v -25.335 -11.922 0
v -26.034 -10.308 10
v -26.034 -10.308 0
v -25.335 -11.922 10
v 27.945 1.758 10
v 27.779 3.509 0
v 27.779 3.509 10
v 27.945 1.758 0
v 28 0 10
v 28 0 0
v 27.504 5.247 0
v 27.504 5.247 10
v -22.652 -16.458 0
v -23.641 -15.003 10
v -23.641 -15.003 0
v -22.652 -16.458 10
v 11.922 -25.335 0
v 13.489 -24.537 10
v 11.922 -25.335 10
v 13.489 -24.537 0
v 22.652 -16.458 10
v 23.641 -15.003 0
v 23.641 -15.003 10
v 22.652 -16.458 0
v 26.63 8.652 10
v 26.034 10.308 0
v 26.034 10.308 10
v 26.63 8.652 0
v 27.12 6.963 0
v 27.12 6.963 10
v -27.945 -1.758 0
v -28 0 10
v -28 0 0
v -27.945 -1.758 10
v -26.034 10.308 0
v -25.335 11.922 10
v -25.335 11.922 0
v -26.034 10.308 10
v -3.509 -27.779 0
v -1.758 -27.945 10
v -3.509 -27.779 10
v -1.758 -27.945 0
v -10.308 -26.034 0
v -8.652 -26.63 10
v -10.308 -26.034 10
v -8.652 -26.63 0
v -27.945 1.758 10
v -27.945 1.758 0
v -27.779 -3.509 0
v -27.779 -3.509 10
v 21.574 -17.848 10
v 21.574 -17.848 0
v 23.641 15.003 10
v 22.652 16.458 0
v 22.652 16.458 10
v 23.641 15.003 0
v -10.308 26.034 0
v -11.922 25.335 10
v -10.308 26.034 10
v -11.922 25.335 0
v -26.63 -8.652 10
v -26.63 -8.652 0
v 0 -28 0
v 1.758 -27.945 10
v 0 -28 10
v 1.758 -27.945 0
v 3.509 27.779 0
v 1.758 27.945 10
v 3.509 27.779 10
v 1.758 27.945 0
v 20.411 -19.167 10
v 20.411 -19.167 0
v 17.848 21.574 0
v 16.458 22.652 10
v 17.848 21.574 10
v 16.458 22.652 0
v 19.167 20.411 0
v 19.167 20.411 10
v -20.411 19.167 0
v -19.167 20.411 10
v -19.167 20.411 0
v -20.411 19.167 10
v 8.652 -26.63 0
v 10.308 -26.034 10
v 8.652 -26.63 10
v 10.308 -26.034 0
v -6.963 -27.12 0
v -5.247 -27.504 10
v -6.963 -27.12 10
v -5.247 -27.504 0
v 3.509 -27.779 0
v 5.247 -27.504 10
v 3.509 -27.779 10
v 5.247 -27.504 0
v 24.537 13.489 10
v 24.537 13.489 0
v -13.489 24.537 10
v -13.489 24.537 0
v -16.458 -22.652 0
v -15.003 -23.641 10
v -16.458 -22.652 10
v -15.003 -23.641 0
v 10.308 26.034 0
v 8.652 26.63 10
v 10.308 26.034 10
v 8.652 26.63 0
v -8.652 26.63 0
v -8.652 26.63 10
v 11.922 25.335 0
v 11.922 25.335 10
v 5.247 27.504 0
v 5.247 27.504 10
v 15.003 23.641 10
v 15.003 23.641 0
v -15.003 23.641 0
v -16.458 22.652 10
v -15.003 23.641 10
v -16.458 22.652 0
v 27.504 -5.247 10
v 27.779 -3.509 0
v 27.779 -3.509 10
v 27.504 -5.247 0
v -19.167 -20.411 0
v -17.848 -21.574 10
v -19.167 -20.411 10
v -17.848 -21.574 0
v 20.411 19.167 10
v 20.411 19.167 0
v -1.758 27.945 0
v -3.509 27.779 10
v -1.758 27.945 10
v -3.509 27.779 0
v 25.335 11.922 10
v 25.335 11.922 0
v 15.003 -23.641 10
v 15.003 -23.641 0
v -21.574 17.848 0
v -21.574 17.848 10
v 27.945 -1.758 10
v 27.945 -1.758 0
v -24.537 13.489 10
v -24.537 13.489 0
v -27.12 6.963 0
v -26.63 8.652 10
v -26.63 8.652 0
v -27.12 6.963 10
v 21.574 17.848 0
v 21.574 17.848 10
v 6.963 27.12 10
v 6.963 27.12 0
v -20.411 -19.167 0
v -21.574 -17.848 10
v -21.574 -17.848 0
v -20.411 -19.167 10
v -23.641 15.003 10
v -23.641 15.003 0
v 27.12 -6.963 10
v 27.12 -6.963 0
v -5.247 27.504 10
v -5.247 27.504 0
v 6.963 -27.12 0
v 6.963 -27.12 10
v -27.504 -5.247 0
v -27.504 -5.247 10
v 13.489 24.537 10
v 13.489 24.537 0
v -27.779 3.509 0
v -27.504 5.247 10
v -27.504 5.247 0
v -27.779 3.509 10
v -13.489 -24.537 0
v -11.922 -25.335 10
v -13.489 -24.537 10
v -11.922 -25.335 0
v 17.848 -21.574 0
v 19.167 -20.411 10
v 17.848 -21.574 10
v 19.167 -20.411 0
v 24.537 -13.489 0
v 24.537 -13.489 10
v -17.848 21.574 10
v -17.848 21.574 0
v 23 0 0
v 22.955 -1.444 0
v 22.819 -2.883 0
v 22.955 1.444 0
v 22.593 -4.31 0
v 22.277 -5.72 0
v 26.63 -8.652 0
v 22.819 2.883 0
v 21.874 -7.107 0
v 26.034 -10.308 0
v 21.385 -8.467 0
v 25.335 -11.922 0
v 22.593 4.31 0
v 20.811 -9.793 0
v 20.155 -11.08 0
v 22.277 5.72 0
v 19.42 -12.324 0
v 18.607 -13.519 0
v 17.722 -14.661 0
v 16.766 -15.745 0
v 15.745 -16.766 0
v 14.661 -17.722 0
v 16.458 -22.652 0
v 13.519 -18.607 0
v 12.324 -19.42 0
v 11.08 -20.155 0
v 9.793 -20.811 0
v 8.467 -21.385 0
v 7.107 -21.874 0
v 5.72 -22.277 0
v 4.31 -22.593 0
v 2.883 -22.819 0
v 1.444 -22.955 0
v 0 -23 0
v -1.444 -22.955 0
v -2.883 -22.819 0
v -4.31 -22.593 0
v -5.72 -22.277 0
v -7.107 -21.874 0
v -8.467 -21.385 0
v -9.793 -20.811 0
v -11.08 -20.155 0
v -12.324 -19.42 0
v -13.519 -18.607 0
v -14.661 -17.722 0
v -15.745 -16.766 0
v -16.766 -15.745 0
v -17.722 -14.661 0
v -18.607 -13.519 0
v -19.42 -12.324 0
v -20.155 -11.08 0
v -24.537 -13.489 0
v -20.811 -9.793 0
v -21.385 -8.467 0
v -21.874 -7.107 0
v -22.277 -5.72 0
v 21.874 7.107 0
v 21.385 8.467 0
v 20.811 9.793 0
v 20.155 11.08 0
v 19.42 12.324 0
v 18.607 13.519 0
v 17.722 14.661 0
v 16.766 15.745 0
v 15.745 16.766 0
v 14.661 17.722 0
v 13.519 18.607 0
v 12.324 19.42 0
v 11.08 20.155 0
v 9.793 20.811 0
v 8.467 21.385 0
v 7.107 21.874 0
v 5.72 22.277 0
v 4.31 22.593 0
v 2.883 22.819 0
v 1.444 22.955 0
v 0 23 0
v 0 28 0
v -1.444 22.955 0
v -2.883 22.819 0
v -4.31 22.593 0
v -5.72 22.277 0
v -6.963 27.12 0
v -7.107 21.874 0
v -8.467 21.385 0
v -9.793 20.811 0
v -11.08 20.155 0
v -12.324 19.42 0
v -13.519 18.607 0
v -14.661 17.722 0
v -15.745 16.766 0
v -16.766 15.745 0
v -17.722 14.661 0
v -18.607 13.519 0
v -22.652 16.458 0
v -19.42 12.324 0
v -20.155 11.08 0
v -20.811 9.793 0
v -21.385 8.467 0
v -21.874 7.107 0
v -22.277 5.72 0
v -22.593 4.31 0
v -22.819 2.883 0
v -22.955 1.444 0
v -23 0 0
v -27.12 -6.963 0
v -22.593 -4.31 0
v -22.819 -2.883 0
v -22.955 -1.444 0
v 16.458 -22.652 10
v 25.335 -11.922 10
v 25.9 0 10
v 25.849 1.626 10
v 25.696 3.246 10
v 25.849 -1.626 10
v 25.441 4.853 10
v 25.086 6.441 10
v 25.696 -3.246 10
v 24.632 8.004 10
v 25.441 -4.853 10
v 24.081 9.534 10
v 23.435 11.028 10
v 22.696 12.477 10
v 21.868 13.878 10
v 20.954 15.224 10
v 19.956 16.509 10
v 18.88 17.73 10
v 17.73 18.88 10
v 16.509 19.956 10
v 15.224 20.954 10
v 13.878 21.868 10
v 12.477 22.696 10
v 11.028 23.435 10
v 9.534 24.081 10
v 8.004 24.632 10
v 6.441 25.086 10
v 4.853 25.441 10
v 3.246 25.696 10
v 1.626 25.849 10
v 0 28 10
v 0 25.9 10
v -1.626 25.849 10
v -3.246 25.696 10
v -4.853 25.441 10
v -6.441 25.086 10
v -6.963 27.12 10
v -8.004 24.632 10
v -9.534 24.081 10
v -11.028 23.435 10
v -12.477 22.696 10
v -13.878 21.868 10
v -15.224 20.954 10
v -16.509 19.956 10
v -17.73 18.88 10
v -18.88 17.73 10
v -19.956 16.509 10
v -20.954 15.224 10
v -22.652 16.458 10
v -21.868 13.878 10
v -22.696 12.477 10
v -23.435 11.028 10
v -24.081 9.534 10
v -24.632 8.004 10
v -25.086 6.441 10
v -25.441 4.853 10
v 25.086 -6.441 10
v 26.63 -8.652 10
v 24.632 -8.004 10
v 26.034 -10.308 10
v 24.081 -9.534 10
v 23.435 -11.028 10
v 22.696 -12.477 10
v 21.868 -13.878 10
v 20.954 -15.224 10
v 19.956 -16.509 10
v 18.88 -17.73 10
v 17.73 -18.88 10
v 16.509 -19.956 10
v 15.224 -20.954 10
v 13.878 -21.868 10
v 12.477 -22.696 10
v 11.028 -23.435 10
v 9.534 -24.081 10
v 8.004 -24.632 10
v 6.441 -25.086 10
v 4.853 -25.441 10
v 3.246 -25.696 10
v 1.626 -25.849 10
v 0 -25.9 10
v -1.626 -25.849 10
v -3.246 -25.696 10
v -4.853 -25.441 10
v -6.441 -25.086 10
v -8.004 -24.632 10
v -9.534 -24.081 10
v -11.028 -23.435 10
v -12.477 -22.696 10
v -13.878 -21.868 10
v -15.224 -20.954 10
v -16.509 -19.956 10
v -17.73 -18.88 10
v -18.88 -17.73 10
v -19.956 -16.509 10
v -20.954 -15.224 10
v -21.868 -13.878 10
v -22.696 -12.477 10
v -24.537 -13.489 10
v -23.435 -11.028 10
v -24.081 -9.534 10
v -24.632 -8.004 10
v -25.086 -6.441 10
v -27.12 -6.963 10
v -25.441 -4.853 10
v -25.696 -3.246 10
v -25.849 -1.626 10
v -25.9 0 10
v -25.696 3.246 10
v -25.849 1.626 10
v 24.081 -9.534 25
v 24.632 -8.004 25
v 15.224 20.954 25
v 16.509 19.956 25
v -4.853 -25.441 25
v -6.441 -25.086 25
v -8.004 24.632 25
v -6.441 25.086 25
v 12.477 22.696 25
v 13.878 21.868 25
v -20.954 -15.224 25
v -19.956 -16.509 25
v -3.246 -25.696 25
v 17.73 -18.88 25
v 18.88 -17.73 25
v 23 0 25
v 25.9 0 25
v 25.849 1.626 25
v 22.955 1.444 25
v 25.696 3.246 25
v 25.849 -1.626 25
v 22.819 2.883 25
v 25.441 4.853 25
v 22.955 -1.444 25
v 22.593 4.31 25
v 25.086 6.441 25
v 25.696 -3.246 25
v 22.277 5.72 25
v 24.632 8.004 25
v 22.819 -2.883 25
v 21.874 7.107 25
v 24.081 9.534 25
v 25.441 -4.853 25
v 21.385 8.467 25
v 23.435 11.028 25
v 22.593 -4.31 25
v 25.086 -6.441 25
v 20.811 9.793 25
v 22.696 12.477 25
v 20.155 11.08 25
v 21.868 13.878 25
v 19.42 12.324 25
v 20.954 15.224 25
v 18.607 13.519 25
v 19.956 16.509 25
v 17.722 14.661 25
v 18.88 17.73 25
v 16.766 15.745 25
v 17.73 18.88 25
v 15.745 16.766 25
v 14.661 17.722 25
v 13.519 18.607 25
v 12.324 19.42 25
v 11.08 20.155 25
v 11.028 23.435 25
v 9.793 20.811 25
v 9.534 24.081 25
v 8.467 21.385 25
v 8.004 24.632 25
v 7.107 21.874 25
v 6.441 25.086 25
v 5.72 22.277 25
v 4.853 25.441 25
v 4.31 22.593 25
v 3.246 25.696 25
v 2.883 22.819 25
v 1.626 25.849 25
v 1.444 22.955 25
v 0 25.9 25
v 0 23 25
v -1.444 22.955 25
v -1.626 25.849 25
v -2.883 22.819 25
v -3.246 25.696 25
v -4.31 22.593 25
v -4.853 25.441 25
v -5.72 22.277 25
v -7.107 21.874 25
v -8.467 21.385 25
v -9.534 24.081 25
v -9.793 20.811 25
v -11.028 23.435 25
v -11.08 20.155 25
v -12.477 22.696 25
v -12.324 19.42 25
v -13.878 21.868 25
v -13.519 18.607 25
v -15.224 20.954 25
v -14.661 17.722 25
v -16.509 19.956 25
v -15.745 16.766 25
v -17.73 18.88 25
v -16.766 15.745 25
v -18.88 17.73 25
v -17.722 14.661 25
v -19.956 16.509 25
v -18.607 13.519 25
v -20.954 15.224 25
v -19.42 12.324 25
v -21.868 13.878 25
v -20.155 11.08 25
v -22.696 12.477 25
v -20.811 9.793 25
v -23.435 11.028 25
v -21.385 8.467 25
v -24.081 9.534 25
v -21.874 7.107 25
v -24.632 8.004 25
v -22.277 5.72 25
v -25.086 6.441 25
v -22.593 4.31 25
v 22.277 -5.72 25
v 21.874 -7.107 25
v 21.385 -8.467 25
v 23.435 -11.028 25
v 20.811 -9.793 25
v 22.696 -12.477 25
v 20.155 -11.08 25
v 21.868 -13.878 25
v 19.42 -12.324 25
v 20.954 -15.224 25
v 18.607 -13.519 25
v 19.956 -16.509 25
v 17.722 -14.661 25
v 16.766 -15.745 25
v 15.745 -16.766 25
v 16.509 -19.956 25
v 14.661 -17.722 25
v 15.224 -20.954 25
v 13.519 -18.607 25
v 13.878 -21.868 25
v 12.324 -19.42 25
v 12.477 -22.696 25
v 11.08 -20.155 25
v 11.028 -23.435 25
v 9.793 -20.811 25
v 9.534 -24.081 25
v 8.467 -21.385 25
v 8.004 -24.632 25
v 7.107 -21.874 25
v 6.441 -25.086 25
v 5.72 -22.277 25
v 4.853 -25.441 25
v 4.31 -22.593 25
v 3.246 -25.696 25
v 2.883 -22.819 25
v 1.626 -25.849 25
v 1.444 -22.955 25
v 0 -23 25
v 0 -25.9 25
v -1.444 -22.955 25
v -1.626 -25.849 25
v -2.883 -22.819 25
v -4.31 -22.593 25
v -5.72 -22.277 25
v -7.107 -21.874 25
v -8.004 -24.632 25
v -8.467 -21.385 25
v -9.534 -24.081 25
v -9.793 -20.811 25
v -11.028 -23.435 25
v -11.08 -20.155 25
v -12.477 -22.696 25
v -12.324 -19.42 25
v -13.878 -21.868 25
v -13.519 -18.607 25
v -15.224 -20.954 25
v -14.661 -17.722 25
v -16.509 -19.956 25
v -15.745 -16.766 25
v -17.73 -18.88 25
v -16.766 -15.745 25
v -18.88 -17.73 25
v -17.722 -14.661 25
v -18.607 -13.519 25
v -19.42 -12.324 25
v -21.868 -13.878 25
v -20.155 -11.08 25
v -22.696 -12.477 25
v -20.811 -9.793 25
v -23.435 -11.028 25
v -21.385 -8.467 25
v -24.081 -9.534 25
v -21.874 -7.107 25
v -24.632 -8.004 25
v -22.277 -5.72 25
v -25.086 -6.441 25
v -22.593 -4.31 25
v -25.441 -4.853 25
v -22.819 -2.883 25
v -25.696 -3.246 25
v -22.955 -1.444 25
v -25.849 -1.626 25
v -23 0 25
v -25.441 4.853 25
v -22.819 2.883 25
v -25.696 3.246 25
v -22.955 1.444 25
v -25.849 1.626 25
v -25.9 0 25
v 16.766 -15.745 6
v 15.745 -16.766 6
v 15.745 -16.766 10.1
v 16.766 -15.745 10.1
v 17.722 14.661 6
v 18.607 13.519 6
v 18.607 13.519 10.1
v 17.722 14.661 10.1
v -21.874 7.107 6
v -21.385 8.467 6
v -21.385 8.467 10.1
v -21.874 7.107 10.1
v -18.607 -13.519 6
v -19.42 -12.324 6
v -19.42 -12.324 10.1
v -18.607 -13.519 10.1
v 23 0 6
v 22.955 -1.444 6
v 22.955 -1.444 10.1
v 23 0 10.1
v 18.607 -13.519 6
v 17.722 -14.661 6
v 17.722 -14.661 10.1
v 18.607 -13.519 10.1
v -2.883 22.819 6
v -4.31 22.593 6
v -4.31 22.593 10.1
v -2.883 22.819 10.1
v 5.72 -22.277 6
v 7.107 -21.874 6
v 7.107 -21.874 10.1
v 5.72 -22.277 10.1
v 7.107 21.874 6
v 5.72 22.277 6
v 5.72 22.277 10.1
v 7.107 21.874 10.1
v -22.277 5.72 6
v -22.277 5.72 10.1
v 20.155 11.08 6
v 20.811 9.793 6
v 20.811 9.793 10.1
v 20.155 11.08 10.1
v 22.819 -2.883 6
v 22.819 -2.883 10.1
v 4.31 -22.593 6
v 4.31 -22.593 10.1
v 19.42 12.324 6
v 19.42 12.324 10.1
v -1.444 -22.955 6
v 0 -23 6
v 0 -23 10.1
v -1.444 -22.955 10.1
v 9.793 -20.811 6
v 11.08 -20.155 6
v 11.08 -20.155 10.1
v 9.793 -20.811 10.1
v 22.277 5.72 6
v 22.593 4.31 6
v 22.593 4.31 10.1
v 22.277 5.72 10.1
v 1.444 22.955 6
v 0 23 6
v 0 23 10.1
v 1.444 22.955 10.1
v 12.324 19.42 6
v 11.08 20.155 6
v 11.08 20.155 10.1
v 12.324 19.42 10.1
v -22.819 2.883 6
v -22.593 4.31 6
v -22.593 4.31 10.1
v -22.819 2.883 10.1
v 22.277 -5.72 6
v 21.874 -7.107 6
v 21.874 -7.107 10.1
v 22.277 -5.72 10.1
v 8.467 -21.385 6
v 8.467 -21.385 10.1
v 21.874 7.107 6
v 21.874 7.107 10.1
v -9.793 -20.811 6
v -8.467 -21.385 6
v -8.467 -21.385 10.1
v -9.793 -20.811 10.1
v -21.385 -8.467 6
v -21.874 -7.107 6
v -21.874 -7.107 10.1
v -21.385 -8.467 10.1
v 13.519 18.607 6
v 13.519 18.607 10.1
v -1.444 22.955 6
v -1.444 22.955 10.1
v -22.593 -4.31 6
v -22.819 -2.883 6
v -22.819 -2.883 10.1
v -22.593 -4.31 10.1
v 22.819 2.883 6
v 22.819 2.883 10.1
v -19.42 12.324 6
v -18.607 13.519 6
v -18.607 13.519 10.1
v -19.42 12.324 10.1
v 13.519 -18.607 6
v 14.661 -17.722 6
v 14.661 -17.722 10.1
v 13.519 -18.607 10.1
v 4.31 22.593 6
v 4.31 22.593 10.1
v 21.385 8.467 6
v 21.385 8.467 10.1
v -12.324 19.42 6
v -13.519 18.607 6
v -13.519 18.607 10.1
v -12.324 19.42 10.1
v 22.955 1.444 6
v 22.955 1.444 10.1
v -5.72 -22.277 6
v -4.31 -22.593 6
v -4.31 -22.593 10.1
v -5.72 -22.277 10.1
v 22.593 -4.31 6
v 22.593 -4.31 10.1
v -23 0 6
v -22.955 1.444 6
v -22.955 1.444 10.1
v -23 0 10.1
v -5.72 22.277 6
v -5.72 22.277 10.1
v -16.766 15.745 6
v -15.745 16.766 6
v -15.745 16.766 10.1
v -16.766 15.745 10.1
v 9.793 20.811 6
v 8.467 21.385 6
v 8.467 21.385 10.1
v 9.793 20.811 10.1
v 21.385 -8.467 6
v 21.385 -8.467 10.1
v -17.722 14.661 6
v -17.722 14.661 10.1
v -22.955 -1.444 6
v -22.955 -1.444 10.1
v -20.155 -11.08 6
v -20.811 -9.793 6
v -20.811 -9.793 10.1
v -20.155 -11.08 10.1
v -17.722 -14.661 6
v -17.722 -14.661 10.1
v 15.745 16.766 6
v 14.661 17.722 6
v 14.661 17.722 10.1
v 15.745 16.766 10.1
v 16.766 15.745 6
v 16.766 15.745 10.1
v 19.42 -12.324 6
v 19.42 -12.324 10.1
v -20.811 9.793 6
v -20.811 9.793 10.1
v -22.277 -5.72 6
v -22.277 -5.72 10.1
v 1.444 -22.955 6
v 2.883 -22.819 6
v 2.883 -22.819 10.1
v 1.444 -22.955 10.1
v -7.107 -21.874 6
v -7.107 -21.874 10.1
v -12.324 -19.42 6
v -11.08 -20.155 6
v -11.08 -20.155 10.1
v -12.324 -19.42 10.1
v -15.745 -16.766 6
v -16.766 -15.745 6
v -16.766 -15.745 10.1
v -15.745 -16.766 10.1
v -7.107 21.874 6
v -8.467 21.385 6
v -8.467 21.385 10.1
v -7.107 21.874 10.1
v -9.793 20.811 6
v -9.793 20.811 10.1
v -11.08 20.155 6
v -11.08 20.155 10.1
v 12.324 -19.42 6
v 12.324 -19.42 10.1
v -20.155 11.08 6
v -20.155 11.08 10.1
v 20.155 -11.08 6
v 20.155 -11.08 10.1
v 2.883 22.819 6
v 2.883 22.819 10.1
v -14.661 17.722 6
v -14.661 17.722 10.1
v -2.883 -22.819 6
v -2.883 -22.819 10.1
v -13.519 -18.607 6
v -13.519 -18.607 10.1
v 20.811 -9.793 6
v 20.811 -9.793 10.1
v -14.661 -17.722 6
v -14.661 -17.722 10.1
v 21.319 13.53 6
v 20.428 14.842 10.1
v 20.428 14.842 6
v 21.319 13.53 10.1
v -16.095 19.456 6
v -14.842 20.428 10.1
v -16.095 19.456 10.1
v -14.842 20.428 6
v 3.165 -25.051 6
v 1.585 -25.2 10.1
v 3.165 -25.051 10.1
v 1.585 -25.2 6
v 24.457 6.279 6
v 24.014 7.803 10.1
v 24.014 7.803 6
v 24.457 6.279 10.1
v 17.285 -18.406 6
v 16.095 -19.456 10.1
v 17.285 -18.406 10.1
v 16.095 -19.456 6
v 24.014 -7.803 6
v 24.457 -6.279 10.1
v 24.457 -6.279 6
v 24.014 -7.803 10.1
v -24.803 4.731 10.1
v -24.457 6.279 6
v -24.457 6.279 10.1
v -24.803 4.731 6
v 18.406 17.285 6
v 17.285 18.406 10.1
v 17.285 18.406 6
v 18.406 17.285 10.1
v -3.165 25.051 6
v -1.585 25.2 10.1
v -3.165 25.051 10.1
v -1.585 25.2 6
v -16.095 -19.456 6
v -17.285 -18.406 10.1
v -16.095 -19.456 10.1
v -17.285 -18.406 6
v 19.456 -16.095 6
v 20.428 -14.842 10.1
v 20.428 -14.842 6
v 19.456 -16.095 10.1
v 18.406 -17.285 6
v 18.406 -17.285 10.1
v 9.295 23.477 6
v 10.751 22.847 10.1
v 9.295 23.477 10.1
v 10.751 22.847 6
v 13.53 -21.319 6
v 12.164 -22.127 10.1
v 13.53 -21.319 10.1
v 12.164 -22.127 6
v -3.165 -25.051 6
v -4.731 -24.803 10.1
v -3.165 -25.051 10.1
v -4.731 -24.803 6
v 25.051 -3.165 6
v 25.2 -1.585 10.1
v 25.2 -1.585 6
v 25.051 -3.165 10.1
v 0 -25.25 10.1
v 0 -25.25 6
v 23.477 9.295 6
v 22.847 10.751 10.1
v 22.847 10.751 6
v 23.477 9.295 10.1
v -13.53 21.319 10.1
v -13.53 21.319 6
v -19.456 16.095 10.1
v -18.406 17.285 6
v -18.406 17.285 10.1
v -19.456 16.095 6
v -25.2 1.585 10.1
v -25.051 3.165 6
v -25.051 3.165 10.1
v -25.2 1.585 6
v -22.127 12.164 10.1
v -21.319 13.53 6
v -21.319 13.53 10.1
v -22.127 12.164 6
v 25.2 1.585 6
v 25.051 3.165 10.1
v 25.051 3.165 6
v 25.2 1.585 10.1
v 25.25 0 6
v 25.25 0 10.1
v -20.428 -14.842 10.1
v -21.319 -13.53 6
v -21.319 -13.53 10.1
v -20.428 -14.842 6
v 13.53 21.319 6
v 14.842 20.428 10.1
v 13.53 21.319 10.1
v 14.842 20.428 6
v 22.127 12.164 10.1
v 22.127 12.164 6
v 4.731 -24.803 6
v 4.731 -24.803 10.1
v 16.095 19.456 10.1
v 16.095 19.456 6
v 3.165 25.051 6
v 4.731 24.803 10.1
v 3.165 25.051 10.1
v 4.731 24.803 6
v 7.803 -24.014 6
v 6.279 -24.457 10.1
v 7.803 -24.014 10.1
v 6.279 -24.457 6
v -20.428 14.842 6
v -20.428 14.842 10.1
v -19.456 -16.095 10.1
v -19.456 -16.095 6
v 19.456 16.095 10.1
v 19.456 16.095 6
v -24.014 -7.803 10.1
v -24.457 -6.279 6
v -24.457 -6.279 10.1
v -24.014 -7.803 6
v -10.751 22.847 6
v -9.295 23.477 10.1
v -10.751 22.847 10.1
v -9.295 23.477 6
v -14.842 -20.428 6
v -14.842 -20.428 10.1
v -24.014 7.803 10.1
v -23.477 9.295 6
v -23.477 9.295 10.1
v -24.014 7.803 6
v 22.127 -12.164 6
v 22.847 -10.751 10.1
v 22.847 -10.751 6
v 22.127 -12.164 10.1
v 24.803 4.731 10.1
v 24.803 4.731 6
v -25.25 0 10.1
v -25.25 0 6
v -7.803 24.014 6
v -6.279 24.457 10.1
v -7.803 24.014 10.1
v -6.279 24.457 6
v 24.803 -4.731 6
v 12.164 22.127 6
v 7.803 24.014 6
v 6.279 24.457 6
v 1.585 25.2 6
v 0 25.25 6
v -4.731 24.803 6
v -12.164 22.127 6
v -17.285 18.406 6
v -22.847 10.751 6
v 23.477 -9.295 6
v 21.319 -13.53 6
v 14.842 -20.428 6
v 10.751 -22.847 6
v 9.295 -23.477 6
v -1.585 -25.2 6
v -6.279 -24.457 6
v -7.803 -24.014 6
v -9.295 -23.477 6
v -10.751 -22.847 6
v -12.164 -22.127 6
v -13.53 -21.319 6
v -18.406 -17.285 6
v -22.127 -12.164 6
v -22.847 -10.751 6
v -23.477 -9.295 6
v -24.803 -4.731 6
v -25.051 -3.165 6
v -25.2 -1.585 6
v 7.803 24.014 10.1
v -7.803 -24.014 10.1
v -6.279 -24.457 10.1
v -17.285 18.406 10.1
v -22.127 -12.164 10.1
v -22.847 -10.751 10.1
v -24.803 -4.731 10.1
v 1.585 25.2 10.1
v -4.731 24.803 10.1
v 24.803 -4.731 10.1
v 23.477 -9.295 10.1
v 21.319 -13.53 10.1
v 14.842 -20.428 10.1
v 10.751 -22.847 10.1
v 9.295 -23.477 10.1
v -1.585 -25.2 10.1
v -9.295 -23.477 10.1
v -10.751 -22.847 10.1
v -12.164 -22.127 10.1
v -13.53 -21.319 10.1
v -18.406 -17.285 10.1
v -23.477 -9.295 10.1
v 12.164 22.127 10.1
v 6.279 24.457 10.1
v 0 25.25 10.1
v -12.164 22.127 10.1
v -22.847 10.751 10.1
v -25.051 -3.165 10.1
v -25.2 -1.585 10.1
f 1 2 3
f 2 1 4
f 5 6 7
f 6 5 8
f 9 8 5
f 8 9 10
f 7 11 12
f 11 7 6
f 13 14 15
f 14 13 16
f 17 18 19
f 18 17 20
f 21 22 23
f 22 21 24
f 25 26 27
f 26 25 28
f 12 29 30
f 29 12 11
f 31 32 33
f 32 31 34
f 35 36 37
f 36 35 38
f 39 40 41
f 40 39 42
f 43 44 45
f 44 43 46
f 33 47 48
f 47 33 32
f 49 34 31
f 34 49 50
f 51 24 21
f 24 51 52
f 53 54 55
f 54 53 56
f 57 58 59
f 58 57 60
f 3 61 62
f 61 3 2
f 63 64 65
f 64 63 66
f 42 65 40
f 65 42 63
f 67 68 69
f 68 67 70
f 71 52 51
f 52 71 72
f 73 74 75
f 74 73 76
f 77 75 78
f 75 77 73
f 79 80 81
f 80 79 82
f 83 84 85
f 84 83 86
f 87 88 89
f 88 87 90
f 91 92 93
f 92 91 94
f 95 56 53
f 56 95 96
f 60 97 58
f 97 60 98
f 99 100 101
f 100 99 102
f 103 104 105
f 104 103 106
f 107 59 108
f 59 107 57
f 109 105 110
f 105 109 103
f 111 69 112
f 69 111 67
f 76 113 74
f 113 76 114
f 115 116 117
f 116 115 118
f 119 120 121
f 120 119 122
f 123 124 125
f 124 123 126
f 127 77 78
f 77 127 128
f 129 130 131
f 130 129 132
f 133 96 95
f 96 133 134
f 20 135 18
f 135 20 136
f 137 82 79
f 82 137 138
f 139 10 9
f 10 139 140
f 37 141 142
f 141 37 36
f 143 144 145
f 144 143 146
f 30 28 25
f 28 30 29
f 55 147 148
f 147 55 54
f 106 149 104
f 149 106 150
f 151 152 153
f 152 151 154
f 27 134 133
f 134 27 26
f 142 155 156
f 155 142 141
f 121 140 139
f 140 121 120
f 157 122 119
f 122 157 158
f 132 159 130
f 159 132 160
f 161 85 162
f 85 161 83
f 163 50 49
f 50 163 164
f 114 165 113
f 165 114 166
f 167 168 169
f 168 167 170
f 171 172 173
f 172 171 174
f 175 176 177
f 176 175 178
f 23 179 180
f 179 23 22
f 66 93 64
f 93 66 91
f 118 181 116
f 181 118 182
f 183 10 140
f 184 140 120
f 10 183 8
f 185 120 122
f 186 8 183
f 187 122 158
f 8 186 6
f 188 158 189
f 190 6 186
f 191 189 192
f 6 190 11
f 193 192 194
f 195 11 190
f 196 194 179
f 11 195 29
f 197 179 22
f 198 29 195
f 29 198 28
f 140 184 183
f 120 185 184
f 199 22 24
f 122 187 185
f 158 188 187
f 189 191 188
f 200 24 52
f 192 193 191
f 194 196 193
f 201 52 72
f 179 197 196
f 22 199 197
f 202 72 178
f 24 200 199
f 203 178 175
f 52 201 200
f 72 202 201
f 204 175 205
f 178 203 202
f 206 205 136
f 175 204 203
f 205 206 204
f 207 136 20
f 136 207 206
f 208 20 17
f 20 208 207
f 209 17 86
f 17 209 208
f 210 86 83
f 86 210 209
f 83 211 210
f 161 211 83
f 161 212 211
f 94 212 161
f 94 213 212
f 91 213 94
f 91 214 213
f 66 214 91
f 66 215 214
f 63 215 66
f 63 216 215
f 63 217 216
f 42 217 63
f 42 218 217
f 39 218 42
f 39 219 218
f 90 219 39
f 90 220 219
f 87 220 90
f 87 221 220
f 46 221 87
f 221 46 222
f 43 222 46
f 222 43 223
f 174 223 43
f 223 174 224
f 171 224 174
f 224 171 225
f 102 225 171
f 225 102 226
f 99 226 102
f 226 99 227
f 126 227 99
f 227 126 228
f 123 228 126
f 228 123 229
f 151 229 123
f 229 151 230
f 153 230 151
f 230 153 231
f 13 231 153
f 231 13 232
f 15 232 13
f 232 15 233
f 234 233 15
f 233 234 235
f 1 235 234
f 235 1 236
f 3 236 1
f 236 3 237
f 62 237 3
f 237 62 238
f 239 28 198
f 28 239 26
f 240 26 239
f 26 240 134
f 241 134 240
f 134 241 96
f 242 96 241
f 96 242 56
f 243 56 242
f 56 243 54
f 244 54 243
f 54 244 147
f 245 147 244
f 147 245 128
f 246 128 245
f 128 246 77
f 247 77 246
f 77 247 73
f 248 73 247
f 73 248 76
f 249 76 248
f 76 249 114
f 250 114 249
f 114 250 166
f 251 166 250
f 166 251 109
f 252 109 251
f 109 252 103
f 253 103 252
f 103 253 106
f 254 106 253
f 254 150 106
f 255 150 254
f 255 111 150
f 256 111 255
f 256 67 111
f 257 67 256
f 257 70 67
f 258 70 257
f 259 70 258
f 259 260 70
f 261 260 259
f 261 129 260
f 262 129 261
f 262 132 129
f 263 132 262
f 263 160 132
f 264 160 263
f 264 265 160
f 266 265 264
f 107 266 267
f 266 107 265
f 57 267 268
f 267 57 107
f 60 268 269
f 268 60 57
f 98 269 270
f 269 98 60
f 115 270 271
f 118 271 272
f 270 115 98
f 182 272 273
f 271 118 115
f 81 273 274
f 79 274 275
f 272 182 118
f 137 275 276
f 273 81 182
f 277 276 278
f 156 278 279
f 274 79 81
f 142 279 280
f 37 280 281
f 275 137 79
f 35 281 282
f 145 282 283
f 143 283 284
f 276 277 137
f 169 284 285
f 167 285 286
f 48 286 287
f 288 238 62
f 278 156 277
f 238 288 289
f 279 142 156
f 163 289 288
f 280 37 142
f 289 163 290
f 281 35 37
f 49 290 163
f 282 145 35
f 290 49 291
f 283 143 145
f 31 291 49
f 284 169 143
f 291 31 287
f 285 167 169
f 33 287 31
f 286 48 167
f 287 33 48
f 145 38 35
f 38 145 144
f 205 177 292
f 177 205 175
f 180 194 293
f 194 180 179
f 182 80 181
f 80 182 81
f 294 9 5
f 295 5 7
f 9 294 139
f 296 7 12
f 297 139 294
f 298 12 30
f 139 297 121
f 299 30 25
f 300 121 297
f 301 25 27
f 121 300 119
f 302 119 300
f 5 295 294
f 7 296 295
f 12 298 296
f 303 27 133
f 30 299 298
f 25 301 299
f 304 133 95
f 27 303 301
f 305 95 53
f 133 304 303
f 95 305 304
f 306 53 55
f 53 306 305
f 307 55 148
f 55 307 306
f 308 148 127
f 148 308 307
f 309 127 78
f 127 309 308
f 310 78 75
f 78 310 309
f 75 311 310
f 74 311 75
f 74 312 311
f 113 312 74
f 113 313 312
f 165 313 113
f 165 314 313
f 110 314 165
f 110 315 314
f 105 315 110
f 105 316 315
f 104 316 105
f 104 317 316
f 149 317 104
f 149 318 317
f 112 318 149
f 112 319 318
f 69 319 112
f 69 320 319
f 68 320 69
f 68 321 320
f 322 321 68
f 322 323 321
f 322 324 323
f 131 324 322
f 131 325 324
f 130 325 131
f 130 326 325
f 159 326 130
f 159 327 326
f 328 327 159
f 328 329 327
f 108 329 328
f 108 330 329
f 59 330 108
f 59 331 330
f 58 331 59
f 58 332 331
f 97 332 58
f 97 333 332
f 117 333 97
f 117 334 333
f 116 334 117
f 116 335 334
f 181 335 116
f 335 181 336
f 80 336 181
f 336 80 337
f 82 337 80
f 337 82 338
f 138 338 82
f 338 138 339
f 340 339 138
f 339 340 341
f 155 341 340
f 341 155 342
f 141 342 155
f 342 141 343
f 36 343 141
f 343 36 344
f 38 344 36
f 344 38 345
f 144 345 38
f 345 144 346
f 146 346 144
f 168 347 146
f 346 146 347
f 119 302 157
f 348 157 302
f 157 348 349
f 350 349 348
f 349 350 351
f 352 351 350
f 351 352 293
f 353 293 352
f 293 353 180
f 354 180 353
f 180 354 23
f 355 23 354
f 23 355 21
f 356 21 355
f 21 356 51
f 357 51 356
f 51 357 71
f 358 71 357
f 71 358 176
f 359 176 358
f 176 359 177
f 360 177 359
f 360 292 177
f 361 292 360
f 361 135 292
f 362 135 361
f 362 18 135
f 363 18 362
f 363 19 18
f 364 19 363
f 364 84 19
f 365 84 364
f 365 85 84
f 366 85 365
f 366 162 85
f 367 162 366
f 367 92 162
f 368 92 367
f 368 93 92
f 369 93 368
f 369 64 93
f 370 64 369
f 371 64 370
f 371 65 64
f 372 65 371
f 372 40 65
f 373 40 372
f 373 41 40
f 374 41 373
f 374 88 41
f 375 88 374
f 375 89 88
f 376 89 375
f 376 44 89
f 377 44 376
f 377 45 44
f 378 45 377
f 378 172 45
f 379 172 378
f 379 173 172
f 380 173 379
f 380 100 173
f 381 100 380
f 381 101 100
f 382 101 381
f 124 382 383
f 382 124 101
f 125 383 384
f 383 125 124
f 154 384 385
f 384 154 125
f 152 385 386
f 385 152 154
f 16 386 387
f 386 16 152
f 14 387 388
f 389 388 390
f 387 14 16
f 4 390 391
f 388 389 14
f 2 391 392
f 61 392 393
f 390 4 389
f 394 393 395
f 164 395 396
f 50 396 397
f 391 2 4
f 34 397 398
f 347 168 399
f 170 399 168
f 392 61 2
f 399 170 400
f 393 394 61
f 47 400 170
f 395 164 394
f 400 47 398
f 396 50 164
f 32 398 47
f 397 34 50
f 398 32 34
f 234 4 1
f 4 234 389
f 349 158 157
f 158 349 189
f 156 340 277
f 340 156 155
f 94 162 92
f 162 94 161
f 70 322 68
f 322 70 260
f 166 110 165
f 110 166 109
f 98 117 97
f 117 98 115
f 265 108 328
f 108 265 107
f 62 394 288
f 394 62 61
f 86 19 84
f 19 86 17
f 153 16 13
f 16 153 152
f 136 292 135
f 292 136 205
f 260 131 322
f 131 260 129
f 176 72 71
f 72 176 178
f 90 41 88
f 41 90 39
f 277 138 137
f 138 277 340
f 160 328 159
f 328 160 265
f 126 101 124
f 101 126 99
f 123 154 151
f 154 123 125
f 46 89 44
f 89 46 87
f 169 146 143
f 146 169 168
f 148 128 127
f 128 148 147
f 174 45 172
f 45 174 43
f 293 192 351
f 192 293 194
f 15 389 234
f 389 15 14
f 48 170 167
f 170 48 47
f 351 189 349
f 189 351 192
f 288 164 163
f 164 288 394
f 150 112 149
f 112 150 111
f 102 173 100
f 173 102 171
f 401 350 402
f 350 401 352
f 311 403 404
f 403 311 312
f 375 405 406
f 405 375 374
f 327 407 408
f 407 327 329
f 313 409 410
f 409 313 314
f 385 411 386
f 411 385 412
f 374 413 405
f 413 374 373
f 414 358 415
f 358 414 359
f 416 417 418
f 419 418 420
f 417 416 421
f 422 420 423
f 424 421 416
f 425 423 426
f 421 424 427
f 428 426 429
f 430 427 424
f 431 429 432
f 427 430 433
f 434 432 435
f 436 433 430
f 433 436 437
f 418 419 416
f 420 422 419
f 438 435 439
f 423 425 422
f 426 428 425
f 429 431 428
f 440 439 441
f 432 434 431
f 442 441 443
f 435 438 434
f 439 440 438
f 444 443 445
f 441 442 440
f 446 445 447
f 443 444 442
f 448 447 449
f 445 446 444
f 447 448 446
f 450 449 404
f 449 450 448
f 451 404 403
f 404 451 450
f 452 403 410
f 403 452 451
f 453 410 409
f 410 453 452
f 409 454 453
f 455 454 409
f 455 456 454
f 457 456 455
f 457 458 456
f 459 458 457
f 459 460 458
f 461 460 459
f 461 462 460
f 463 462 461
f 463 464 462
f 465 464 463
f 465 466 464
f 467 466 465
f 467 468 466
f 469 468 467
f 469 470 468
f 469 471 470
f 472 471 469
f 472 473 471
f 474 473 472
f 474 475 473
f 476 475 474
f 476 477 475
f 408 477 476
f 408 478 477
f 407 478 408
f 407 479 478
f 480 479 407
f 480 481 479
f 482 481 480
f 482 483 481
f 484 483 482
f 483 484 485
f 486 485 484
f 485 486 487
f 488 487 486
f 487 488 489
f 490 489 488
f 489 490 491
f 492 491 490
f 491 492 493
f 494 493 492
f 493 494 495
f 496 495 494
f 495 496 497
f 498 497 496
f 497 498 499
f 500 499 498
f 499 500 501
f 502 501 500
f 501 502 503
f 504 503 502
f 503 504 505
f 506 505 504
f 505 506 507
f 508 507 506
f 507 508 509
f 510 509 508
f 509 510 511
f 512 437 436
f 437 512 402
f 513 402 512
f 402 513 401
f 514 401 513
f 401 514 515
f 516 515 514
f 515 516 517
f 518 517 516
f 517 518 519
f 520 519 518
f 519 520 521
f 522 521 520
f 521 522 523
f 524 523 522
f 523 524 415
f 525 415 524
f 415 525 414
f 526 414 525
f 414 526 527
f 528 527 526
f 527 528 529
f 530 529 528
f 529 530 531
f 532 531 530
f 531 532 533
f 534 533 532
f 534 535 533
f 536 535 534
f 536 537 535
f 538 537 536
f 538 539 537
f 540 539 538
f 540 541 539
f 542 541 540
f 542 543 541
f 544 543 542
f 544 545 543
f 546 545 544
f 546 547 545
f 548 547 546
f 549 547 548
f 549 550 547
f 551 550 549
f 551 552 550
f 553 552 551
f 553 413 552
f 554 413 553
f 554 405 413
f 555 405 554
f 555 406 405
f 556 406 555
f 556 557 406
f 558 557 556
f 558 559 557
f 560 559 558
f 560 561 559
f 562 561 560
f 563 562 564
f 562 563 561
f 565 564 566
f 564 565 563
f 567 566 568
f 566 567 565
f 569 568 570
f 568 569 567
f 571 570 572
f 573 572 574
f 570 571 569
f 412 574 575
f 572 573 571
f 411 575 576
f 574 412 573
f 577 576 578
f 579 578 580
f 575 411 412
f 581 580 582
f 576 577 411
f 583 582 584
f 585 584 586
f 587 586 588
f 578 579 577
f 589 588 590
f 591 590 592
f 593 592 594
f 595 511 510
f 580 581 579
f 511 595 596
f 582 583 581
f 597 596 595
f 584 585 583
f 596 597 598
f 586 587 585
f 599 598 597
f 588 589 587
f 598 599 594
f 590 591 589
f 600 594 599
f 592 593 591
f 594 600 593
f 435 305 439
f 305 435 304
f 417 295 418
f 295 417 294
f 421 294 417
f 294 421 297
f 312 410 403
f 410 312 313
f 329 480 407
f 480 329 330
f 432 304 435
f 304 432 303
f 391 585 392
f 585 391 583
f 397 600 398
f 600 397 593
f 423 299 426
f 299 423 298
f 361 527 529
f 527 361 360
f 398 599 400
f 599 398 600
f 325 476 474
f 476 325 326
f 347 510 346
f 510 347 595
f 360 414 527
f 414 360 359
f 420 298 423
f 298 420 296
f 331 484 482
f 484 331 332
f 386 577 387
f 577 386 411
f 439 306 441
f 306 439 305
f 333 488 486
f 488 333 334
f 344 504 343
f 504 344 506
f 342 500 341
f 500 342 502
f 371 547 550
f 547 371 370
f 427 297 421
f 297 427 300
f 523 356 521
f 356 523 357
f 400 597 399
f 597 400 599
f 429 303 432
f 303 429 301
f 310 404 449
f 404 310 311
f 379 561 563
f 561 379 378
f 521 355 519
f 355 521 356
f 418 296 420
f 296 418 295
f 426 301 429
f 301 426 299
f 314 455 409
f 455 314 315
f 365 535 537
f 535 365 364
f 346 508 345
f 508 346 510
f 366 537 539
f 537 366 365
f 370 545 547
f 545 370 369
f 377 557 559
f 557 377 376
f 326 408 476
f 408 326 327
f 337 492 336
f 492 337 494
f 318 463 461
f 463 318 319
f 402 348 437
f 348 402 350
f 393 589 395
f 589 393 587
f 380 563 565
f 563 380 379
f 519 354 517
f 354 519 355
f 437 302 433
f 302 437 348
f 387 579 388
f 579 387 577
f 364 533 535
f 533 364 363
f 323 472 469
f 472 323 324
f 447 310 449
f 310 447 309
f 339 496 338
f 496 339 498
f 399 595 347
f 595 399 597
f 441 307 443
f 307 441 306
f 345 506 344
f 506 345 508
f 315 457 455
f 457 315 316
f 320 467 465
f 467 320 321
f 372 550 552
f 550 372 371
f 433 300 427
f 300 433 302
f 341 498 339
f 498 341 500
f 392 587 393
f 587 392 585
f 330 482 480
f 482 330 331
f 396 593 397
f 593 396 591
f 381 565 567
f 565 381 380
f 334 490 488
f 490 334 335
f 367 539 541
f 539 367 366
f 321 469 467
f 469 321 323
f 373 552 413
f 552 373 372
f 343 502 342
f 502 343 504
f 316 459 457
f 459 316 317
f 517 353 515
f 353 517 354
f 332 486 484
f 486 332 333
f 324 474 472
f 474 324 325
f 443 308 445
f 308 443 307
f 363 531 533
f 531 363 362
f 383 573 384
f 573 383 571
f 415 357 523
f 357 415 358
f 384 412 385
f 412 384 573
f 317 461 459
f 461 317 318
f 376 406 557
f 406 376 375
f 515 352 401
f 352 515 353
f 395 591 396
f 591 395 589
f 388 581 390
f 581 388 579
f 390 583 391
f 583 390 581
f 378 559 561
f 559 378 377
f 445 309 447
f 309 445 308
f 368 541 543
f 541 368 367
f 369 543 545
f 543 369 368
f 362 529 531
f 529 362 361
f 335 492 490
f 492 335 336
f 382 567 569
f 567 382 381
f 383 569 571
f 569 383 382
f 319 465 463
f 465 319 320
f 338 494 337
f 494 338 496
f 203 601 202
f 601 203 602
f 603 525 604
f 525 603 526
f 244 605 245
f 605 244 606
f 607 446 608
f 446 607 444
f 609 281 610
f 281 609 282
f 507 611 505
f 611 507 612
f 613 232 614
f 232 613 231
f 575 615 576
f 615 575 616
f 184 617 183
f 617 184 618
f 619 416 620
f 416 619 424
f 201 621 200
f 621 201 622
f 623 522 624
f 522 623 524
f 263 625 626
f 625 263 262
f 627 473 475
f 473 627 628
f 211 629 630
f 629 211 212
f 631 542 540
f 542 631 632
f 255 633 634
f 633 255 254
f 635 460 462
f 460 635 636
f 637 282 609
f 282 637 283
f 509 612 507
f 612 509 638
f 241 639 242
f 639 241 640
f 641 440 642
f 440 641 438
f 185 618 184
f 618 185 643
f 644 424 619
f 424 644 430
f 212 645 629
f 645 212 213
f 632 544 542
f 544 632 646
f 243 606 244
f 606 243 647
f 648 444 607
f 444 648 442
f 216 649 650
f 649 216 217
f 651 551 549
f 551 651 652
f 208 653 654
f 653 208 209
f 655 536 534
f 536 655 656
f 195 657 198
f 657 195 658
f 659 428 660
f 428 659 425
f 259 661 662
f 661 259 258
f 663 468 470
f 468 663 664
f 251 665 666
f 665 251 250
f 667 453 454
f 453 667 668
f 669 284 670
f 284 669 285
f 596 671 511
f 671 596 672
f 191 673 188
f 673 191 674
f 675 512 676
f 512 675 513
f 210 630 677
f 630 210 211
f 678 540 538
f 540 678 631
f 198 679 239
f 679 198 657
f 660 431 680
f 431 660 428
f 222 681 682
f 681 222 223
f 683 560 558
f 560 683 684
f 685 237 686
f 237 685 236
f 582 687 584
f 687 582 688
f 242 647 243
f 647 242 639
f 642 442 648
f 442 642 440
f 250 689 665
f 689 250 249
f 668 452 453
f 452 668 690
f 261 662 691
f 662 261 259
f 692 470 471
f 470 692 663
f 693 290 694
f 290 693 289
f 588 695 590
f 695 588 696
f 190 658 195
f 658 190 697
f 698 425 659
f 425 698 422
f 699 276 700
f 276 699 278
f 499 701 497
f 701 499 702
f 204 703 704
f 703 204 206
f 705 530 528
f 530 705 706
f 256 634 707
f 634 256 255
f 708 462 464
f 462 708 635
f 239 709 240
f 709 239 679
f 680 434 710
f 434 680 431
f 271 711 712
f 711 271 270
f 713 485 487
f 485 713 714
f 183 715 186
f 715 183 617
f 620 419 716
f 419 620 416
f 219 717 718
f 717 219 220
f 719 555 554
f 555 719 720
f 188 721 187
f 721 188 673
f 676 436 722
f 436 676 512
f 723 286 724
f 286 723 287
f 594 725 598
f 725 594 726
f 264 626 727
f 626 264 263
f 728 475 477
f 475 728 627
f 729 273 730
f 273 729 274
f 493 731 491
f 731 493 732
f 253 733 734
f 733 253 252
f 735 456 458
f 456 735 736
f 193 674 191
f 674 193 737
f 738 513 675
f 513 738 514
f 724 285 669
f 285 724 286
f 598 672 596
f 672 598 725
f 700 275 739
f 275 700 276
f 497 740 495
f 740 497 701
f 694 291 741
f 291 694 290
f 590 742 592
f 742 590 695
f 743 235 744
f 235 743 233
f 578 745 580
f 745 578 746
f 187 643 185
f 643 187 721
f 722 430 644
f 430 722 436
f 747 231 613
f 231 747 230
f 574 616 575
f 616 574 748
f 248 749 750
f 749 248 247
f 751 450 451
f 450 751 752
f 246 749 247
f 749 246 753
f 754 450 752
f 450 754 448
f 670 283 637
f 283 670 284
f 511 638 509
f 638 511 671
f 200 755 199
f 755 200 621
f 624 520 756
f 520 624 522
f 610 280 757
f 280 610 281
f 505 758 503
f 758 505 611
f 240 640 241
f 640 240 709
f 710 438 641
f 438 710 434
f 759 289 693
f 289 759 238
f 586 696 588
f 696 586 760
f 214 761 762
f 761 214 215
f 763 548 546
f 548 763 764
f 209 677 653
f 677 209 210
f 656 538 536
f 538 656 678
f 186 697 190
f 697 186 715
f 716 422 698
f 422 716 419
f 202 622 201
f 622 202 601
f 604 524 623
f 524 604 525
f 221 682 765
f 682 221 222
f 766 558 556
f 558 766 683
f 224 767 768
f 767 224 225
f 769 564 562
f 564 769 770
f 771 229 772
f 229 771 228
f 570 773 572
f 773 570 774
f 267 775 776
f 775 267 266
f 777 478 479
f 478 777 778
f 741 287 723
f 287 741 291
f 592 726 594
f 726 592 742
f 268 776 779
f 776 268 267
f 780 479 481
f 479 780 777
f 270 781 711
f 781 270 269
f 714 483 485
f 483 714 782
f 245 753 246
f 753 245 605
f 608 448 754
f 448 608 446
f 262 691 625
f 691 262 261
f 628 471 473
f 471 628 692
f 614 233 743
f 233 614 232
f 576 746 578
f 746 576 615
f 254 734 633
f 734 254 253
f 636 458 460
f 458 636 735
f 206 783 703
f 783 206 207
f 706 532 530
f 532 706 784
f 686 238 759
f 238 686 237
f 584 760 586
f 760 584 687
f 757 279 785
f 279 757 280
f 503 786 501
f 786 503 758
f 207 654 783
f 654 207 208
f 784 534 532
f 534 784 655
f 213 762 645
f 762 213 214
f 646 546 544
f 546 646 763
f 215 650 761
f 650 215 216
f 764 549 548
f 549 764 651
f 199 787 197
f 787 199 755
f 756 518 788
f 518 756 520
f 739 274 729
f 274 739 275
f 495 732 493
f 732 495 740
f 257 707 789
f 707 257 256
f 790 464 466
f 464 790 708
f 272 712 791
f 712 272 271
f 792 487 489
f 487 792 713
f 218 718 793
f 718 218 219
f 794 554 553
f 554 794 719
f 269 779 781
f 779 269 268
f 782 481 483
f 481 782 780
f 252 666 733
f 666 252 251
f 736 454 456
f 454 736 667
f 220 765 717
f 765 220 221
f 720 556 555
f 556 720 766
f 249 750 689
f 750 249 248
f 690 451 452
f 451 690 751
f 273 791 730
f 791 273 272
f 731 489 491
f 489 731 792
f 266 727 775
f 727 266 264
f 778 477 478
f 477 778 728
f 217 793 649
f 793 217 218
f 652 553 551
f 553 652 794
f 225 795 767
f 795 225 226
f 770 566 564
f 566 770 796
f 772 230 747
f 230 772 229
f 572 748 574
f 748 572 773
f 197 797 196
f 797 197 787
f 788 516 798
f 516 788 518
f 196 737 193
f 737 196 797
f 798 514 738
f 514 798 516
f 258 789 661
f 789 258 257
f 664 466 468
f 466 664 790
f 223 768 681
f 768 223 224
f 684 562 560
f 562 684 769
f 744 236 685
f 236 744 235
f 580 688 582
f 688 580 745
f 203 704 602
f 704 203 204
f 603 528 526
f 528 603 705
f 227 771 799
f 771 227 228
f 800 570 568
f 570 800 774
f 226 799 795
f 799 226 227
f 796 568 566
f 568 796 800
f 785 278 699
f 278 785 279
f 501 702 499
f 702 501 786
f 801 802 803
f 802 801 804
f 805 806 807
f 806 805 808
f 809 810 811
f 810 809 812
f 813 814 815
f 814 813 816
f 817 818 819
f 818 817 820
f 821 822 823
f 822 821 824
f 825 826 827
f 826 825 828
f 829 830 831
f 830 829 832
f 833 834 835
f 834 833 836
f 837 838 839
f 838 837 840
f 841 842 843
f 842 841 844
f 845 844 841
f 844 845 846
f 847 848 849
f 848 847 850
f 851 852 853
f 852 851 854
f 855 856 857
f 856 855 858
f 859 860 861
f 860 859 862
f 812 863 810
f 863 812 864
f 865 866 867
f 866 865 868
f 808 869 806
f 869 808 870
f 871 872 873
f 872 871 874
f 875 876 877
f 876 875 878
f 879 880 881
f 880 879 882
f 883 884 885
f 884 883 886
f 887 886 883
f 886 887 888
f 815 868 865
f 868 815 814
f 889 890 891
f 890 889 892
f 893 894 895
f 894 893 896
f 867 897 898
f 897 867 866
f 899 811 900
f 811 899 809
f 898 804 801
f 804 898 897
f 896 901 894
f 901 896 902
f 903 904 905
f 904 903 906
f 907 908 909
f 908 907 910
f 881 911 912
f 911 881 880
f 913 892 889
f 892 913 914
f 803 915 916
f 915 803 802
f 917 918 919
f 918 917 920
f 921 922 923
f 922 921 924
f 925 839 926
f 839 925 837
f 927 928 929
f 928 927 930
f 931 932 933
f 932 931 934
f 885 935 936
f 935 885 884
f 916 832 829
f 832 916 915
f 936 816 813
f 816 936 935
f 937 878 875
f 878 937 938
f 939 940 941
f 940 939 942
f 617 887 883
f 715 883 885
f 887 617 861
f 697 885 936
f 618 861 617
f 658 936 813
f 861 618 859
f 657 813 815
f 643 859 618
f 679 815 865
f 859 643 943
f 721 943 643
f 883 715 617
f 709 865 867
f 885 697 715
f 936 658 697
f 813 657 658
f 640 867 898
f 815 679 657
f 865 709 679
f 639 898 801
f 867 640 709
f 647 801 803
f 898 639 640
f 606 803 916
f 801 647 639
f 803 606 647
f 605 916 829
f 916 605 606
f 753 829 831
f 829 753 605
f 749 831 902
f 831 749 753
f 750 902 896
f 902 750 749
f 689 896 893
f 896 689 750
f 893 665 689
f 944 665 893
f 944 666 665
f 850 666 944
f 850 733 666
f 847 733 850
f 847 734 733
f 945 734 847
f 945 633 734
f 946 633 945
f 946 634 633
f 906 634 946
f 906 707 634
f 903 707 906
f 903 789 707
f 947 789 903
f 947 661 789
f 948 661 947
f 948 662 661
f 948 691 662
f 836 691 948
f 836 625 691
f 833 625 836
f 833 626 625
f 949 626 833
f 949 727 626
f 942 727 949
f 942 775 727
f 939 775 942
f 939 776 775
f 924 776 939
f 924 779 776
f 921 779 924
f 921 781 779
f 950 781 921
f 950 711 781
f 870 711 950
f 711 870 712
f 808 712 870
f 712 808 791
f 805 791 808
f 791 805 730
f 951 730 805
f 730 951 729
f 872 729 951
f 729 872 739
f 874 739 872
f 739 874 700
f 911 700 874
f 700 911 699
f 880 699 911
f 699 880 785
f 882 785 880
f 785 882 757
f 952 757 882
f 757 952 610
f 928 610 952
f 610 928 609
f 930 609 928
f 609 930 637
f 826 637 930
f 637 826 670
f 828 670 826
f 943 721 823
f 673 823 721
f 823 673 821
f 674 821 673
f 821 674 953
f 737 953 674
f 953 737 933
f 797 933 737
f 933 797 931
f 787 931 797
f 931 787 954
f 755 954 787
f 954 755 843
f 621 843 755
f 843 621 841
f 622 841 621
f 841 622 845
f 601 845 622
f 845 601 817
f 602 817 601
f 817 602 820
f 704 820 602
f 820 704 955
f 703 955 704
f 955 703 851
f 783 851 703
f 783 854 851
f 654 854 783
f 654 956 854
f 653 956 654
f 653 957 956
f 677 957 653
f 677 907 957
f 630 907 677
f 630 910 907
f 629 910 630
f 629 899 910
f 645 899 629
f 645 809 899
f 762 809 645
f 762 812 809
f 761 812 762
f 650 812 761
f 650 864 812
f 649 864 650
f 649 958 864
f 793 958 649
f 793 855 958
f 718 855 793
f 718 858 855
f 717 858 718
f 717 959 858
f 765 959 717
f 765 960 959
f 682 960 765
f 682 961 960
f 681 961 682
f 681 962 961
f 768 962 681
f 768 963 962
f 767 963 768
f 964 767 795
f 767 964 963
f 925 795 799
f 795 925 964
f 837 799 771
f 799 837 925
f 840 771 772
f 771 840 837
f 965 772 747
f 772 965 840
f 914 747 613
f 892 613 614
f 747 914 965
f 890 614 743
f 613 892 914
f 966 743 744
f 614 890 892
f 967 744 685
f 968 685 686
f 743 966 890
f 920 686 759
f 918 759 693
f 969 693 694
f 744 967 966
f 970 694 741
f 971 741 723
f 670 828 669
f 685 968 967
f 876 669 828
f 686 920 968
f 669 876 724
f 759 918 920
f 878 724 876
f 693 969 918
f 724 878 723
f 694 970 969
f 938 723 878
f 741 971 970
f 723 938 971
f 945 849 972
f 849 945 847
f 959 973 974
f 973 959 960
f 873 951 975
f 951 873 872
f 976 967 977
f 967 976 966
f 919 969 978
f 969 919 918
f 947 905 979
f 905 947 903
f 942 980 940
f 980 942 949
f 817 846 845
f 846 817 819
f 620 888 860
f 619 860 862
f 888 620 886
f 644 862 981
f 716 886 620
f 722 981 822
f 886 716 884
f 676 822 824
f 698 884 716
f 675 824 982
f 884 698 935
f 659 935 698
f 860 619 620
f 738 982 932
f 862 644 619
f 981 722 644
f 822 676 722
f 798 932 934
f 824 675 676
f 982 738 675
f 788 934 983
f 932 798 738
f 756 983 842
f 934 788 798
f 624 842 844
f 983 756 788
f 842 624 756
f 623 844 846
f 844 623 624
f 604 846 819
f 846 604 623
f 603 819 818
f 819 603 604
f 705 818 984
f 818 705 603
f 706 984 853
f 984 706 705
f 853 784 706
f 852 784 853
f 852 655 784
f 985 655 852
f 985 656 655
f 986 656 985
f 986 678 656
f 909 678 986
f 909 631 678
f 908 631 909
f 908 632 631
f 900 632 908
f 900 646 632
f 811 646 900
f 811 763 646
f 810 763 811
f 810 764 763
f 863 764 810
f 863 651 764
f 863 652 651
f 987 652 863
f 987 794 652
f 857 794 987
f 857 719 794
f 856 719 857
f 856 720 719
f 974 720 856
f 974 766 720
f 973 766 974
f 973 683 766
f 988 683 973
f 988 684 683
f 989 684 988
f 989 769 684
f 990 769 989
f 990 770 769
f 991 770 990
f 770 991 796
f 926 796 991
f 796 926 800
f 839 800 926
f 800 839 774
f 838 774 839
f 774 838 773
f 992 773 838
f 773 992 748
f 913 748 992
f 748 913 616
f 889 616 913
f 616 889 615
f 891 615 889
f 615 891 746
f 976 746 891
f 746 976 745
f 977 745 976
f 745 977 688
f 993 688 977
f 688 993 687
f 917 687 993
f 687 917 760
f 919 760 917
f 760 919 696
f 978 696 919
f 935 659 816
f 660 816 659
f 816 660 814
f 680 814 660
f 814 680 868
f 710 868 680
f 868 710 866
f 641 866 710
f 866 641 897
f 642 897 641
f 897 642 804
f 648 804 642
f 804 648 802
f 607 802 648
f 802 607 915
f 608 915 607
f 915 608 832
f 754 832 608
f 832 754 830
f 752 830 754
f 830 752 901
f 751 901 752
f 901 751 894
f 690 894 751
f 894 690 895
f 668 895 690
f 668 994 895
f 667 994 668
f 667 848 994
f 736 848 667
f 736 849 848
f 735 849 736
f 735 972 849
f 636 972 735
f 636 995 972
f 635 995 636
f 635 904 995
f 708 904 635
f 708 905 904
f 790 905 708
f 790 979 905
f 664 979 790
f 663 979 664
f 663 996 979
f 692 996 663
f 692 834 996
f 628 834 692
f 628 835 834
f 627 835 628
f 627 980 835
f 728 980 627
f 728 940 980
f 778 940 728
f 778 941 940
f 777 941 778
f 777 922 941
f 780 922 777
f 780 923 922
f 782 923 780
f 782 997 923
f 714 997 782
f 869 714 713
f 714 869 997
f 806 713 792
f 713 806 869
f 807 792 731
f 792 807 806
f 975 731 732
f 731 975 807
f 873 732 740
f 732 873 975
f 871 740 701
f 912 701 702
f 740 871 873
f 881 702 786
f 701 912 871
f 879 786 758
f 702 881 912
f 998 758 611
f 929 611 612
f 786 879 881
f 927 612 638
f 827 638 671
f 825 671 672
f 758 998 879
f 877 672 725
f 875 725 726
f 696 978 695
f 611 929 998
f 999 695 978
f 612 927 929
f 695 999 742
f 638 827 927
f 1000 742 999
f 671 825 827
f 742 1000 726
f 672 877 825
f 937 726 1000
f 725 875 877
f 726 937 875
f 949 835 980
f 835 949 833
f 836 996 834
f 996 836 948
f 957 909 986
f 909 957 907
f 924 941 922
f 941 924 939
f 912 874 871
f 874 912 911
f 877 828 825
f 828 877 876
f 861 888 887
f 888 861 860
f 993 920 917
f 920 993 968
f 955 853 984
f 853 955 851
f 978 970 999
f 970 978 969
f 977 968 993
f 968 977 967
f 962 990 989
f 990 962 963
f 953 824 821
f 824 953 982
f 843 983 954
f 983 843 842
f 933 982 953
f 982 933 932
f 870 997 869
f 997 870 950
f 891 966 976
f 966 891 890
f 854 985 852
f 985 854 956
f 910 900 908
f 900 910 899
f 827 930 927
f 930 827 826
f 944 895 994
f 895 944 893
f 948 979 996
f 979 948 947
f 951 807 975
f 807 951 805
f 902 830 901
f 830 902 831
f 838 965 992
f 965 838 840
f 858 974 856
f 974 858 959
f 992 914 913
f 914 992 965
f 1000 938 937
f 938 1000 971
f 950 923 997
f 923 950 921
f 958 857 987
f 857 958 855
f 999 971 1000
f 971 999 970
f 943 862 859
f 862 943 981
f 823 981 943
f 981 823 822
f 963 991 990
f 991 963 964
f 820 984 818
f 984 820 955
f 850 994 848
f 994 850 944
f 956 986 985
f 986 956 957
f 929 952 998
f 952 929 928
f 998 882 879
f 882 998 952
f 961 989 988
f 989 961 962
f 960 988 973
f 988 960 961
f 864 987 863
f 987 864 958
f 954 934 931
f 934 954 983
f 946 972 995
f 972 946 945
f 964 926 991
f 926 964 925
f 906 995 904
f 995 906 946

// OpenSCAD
// Galilean Objective Cell (物镜座)
// 用于固定 50mm 凸透镜

lens_dia = 50.5; // 透镜直径预留公差
lens_thickness = 4; // 透镜边缘厚度
tube_od = 56; // 主管外径
tube_id = 52; // 主管内径
insert_length = 15; // 插入主管的长度

module objective_cell() {
    difference() {
        union() {
            // 外部挡环
            cylinder(d=tube_od, h=10, $fn=100);
            // 插入主管的部分
            translate([0, 0, 10])
            cylinder(d=tube_id - 0.2, h=insert_length, $fn=100);
        }
        
        // 通光孔
        translate([0, 0, -1])
        cylinder(d=46, h=20 + insert_length + 2, $fn=100);
        
        // 放置透镜的凹槽
        translate([0, 0, 10 - lens_thickness])
        cylinder(d=lens_dia, h=lens_thickness + 0.1, $fn=100);
    }
}

objective_cell();
